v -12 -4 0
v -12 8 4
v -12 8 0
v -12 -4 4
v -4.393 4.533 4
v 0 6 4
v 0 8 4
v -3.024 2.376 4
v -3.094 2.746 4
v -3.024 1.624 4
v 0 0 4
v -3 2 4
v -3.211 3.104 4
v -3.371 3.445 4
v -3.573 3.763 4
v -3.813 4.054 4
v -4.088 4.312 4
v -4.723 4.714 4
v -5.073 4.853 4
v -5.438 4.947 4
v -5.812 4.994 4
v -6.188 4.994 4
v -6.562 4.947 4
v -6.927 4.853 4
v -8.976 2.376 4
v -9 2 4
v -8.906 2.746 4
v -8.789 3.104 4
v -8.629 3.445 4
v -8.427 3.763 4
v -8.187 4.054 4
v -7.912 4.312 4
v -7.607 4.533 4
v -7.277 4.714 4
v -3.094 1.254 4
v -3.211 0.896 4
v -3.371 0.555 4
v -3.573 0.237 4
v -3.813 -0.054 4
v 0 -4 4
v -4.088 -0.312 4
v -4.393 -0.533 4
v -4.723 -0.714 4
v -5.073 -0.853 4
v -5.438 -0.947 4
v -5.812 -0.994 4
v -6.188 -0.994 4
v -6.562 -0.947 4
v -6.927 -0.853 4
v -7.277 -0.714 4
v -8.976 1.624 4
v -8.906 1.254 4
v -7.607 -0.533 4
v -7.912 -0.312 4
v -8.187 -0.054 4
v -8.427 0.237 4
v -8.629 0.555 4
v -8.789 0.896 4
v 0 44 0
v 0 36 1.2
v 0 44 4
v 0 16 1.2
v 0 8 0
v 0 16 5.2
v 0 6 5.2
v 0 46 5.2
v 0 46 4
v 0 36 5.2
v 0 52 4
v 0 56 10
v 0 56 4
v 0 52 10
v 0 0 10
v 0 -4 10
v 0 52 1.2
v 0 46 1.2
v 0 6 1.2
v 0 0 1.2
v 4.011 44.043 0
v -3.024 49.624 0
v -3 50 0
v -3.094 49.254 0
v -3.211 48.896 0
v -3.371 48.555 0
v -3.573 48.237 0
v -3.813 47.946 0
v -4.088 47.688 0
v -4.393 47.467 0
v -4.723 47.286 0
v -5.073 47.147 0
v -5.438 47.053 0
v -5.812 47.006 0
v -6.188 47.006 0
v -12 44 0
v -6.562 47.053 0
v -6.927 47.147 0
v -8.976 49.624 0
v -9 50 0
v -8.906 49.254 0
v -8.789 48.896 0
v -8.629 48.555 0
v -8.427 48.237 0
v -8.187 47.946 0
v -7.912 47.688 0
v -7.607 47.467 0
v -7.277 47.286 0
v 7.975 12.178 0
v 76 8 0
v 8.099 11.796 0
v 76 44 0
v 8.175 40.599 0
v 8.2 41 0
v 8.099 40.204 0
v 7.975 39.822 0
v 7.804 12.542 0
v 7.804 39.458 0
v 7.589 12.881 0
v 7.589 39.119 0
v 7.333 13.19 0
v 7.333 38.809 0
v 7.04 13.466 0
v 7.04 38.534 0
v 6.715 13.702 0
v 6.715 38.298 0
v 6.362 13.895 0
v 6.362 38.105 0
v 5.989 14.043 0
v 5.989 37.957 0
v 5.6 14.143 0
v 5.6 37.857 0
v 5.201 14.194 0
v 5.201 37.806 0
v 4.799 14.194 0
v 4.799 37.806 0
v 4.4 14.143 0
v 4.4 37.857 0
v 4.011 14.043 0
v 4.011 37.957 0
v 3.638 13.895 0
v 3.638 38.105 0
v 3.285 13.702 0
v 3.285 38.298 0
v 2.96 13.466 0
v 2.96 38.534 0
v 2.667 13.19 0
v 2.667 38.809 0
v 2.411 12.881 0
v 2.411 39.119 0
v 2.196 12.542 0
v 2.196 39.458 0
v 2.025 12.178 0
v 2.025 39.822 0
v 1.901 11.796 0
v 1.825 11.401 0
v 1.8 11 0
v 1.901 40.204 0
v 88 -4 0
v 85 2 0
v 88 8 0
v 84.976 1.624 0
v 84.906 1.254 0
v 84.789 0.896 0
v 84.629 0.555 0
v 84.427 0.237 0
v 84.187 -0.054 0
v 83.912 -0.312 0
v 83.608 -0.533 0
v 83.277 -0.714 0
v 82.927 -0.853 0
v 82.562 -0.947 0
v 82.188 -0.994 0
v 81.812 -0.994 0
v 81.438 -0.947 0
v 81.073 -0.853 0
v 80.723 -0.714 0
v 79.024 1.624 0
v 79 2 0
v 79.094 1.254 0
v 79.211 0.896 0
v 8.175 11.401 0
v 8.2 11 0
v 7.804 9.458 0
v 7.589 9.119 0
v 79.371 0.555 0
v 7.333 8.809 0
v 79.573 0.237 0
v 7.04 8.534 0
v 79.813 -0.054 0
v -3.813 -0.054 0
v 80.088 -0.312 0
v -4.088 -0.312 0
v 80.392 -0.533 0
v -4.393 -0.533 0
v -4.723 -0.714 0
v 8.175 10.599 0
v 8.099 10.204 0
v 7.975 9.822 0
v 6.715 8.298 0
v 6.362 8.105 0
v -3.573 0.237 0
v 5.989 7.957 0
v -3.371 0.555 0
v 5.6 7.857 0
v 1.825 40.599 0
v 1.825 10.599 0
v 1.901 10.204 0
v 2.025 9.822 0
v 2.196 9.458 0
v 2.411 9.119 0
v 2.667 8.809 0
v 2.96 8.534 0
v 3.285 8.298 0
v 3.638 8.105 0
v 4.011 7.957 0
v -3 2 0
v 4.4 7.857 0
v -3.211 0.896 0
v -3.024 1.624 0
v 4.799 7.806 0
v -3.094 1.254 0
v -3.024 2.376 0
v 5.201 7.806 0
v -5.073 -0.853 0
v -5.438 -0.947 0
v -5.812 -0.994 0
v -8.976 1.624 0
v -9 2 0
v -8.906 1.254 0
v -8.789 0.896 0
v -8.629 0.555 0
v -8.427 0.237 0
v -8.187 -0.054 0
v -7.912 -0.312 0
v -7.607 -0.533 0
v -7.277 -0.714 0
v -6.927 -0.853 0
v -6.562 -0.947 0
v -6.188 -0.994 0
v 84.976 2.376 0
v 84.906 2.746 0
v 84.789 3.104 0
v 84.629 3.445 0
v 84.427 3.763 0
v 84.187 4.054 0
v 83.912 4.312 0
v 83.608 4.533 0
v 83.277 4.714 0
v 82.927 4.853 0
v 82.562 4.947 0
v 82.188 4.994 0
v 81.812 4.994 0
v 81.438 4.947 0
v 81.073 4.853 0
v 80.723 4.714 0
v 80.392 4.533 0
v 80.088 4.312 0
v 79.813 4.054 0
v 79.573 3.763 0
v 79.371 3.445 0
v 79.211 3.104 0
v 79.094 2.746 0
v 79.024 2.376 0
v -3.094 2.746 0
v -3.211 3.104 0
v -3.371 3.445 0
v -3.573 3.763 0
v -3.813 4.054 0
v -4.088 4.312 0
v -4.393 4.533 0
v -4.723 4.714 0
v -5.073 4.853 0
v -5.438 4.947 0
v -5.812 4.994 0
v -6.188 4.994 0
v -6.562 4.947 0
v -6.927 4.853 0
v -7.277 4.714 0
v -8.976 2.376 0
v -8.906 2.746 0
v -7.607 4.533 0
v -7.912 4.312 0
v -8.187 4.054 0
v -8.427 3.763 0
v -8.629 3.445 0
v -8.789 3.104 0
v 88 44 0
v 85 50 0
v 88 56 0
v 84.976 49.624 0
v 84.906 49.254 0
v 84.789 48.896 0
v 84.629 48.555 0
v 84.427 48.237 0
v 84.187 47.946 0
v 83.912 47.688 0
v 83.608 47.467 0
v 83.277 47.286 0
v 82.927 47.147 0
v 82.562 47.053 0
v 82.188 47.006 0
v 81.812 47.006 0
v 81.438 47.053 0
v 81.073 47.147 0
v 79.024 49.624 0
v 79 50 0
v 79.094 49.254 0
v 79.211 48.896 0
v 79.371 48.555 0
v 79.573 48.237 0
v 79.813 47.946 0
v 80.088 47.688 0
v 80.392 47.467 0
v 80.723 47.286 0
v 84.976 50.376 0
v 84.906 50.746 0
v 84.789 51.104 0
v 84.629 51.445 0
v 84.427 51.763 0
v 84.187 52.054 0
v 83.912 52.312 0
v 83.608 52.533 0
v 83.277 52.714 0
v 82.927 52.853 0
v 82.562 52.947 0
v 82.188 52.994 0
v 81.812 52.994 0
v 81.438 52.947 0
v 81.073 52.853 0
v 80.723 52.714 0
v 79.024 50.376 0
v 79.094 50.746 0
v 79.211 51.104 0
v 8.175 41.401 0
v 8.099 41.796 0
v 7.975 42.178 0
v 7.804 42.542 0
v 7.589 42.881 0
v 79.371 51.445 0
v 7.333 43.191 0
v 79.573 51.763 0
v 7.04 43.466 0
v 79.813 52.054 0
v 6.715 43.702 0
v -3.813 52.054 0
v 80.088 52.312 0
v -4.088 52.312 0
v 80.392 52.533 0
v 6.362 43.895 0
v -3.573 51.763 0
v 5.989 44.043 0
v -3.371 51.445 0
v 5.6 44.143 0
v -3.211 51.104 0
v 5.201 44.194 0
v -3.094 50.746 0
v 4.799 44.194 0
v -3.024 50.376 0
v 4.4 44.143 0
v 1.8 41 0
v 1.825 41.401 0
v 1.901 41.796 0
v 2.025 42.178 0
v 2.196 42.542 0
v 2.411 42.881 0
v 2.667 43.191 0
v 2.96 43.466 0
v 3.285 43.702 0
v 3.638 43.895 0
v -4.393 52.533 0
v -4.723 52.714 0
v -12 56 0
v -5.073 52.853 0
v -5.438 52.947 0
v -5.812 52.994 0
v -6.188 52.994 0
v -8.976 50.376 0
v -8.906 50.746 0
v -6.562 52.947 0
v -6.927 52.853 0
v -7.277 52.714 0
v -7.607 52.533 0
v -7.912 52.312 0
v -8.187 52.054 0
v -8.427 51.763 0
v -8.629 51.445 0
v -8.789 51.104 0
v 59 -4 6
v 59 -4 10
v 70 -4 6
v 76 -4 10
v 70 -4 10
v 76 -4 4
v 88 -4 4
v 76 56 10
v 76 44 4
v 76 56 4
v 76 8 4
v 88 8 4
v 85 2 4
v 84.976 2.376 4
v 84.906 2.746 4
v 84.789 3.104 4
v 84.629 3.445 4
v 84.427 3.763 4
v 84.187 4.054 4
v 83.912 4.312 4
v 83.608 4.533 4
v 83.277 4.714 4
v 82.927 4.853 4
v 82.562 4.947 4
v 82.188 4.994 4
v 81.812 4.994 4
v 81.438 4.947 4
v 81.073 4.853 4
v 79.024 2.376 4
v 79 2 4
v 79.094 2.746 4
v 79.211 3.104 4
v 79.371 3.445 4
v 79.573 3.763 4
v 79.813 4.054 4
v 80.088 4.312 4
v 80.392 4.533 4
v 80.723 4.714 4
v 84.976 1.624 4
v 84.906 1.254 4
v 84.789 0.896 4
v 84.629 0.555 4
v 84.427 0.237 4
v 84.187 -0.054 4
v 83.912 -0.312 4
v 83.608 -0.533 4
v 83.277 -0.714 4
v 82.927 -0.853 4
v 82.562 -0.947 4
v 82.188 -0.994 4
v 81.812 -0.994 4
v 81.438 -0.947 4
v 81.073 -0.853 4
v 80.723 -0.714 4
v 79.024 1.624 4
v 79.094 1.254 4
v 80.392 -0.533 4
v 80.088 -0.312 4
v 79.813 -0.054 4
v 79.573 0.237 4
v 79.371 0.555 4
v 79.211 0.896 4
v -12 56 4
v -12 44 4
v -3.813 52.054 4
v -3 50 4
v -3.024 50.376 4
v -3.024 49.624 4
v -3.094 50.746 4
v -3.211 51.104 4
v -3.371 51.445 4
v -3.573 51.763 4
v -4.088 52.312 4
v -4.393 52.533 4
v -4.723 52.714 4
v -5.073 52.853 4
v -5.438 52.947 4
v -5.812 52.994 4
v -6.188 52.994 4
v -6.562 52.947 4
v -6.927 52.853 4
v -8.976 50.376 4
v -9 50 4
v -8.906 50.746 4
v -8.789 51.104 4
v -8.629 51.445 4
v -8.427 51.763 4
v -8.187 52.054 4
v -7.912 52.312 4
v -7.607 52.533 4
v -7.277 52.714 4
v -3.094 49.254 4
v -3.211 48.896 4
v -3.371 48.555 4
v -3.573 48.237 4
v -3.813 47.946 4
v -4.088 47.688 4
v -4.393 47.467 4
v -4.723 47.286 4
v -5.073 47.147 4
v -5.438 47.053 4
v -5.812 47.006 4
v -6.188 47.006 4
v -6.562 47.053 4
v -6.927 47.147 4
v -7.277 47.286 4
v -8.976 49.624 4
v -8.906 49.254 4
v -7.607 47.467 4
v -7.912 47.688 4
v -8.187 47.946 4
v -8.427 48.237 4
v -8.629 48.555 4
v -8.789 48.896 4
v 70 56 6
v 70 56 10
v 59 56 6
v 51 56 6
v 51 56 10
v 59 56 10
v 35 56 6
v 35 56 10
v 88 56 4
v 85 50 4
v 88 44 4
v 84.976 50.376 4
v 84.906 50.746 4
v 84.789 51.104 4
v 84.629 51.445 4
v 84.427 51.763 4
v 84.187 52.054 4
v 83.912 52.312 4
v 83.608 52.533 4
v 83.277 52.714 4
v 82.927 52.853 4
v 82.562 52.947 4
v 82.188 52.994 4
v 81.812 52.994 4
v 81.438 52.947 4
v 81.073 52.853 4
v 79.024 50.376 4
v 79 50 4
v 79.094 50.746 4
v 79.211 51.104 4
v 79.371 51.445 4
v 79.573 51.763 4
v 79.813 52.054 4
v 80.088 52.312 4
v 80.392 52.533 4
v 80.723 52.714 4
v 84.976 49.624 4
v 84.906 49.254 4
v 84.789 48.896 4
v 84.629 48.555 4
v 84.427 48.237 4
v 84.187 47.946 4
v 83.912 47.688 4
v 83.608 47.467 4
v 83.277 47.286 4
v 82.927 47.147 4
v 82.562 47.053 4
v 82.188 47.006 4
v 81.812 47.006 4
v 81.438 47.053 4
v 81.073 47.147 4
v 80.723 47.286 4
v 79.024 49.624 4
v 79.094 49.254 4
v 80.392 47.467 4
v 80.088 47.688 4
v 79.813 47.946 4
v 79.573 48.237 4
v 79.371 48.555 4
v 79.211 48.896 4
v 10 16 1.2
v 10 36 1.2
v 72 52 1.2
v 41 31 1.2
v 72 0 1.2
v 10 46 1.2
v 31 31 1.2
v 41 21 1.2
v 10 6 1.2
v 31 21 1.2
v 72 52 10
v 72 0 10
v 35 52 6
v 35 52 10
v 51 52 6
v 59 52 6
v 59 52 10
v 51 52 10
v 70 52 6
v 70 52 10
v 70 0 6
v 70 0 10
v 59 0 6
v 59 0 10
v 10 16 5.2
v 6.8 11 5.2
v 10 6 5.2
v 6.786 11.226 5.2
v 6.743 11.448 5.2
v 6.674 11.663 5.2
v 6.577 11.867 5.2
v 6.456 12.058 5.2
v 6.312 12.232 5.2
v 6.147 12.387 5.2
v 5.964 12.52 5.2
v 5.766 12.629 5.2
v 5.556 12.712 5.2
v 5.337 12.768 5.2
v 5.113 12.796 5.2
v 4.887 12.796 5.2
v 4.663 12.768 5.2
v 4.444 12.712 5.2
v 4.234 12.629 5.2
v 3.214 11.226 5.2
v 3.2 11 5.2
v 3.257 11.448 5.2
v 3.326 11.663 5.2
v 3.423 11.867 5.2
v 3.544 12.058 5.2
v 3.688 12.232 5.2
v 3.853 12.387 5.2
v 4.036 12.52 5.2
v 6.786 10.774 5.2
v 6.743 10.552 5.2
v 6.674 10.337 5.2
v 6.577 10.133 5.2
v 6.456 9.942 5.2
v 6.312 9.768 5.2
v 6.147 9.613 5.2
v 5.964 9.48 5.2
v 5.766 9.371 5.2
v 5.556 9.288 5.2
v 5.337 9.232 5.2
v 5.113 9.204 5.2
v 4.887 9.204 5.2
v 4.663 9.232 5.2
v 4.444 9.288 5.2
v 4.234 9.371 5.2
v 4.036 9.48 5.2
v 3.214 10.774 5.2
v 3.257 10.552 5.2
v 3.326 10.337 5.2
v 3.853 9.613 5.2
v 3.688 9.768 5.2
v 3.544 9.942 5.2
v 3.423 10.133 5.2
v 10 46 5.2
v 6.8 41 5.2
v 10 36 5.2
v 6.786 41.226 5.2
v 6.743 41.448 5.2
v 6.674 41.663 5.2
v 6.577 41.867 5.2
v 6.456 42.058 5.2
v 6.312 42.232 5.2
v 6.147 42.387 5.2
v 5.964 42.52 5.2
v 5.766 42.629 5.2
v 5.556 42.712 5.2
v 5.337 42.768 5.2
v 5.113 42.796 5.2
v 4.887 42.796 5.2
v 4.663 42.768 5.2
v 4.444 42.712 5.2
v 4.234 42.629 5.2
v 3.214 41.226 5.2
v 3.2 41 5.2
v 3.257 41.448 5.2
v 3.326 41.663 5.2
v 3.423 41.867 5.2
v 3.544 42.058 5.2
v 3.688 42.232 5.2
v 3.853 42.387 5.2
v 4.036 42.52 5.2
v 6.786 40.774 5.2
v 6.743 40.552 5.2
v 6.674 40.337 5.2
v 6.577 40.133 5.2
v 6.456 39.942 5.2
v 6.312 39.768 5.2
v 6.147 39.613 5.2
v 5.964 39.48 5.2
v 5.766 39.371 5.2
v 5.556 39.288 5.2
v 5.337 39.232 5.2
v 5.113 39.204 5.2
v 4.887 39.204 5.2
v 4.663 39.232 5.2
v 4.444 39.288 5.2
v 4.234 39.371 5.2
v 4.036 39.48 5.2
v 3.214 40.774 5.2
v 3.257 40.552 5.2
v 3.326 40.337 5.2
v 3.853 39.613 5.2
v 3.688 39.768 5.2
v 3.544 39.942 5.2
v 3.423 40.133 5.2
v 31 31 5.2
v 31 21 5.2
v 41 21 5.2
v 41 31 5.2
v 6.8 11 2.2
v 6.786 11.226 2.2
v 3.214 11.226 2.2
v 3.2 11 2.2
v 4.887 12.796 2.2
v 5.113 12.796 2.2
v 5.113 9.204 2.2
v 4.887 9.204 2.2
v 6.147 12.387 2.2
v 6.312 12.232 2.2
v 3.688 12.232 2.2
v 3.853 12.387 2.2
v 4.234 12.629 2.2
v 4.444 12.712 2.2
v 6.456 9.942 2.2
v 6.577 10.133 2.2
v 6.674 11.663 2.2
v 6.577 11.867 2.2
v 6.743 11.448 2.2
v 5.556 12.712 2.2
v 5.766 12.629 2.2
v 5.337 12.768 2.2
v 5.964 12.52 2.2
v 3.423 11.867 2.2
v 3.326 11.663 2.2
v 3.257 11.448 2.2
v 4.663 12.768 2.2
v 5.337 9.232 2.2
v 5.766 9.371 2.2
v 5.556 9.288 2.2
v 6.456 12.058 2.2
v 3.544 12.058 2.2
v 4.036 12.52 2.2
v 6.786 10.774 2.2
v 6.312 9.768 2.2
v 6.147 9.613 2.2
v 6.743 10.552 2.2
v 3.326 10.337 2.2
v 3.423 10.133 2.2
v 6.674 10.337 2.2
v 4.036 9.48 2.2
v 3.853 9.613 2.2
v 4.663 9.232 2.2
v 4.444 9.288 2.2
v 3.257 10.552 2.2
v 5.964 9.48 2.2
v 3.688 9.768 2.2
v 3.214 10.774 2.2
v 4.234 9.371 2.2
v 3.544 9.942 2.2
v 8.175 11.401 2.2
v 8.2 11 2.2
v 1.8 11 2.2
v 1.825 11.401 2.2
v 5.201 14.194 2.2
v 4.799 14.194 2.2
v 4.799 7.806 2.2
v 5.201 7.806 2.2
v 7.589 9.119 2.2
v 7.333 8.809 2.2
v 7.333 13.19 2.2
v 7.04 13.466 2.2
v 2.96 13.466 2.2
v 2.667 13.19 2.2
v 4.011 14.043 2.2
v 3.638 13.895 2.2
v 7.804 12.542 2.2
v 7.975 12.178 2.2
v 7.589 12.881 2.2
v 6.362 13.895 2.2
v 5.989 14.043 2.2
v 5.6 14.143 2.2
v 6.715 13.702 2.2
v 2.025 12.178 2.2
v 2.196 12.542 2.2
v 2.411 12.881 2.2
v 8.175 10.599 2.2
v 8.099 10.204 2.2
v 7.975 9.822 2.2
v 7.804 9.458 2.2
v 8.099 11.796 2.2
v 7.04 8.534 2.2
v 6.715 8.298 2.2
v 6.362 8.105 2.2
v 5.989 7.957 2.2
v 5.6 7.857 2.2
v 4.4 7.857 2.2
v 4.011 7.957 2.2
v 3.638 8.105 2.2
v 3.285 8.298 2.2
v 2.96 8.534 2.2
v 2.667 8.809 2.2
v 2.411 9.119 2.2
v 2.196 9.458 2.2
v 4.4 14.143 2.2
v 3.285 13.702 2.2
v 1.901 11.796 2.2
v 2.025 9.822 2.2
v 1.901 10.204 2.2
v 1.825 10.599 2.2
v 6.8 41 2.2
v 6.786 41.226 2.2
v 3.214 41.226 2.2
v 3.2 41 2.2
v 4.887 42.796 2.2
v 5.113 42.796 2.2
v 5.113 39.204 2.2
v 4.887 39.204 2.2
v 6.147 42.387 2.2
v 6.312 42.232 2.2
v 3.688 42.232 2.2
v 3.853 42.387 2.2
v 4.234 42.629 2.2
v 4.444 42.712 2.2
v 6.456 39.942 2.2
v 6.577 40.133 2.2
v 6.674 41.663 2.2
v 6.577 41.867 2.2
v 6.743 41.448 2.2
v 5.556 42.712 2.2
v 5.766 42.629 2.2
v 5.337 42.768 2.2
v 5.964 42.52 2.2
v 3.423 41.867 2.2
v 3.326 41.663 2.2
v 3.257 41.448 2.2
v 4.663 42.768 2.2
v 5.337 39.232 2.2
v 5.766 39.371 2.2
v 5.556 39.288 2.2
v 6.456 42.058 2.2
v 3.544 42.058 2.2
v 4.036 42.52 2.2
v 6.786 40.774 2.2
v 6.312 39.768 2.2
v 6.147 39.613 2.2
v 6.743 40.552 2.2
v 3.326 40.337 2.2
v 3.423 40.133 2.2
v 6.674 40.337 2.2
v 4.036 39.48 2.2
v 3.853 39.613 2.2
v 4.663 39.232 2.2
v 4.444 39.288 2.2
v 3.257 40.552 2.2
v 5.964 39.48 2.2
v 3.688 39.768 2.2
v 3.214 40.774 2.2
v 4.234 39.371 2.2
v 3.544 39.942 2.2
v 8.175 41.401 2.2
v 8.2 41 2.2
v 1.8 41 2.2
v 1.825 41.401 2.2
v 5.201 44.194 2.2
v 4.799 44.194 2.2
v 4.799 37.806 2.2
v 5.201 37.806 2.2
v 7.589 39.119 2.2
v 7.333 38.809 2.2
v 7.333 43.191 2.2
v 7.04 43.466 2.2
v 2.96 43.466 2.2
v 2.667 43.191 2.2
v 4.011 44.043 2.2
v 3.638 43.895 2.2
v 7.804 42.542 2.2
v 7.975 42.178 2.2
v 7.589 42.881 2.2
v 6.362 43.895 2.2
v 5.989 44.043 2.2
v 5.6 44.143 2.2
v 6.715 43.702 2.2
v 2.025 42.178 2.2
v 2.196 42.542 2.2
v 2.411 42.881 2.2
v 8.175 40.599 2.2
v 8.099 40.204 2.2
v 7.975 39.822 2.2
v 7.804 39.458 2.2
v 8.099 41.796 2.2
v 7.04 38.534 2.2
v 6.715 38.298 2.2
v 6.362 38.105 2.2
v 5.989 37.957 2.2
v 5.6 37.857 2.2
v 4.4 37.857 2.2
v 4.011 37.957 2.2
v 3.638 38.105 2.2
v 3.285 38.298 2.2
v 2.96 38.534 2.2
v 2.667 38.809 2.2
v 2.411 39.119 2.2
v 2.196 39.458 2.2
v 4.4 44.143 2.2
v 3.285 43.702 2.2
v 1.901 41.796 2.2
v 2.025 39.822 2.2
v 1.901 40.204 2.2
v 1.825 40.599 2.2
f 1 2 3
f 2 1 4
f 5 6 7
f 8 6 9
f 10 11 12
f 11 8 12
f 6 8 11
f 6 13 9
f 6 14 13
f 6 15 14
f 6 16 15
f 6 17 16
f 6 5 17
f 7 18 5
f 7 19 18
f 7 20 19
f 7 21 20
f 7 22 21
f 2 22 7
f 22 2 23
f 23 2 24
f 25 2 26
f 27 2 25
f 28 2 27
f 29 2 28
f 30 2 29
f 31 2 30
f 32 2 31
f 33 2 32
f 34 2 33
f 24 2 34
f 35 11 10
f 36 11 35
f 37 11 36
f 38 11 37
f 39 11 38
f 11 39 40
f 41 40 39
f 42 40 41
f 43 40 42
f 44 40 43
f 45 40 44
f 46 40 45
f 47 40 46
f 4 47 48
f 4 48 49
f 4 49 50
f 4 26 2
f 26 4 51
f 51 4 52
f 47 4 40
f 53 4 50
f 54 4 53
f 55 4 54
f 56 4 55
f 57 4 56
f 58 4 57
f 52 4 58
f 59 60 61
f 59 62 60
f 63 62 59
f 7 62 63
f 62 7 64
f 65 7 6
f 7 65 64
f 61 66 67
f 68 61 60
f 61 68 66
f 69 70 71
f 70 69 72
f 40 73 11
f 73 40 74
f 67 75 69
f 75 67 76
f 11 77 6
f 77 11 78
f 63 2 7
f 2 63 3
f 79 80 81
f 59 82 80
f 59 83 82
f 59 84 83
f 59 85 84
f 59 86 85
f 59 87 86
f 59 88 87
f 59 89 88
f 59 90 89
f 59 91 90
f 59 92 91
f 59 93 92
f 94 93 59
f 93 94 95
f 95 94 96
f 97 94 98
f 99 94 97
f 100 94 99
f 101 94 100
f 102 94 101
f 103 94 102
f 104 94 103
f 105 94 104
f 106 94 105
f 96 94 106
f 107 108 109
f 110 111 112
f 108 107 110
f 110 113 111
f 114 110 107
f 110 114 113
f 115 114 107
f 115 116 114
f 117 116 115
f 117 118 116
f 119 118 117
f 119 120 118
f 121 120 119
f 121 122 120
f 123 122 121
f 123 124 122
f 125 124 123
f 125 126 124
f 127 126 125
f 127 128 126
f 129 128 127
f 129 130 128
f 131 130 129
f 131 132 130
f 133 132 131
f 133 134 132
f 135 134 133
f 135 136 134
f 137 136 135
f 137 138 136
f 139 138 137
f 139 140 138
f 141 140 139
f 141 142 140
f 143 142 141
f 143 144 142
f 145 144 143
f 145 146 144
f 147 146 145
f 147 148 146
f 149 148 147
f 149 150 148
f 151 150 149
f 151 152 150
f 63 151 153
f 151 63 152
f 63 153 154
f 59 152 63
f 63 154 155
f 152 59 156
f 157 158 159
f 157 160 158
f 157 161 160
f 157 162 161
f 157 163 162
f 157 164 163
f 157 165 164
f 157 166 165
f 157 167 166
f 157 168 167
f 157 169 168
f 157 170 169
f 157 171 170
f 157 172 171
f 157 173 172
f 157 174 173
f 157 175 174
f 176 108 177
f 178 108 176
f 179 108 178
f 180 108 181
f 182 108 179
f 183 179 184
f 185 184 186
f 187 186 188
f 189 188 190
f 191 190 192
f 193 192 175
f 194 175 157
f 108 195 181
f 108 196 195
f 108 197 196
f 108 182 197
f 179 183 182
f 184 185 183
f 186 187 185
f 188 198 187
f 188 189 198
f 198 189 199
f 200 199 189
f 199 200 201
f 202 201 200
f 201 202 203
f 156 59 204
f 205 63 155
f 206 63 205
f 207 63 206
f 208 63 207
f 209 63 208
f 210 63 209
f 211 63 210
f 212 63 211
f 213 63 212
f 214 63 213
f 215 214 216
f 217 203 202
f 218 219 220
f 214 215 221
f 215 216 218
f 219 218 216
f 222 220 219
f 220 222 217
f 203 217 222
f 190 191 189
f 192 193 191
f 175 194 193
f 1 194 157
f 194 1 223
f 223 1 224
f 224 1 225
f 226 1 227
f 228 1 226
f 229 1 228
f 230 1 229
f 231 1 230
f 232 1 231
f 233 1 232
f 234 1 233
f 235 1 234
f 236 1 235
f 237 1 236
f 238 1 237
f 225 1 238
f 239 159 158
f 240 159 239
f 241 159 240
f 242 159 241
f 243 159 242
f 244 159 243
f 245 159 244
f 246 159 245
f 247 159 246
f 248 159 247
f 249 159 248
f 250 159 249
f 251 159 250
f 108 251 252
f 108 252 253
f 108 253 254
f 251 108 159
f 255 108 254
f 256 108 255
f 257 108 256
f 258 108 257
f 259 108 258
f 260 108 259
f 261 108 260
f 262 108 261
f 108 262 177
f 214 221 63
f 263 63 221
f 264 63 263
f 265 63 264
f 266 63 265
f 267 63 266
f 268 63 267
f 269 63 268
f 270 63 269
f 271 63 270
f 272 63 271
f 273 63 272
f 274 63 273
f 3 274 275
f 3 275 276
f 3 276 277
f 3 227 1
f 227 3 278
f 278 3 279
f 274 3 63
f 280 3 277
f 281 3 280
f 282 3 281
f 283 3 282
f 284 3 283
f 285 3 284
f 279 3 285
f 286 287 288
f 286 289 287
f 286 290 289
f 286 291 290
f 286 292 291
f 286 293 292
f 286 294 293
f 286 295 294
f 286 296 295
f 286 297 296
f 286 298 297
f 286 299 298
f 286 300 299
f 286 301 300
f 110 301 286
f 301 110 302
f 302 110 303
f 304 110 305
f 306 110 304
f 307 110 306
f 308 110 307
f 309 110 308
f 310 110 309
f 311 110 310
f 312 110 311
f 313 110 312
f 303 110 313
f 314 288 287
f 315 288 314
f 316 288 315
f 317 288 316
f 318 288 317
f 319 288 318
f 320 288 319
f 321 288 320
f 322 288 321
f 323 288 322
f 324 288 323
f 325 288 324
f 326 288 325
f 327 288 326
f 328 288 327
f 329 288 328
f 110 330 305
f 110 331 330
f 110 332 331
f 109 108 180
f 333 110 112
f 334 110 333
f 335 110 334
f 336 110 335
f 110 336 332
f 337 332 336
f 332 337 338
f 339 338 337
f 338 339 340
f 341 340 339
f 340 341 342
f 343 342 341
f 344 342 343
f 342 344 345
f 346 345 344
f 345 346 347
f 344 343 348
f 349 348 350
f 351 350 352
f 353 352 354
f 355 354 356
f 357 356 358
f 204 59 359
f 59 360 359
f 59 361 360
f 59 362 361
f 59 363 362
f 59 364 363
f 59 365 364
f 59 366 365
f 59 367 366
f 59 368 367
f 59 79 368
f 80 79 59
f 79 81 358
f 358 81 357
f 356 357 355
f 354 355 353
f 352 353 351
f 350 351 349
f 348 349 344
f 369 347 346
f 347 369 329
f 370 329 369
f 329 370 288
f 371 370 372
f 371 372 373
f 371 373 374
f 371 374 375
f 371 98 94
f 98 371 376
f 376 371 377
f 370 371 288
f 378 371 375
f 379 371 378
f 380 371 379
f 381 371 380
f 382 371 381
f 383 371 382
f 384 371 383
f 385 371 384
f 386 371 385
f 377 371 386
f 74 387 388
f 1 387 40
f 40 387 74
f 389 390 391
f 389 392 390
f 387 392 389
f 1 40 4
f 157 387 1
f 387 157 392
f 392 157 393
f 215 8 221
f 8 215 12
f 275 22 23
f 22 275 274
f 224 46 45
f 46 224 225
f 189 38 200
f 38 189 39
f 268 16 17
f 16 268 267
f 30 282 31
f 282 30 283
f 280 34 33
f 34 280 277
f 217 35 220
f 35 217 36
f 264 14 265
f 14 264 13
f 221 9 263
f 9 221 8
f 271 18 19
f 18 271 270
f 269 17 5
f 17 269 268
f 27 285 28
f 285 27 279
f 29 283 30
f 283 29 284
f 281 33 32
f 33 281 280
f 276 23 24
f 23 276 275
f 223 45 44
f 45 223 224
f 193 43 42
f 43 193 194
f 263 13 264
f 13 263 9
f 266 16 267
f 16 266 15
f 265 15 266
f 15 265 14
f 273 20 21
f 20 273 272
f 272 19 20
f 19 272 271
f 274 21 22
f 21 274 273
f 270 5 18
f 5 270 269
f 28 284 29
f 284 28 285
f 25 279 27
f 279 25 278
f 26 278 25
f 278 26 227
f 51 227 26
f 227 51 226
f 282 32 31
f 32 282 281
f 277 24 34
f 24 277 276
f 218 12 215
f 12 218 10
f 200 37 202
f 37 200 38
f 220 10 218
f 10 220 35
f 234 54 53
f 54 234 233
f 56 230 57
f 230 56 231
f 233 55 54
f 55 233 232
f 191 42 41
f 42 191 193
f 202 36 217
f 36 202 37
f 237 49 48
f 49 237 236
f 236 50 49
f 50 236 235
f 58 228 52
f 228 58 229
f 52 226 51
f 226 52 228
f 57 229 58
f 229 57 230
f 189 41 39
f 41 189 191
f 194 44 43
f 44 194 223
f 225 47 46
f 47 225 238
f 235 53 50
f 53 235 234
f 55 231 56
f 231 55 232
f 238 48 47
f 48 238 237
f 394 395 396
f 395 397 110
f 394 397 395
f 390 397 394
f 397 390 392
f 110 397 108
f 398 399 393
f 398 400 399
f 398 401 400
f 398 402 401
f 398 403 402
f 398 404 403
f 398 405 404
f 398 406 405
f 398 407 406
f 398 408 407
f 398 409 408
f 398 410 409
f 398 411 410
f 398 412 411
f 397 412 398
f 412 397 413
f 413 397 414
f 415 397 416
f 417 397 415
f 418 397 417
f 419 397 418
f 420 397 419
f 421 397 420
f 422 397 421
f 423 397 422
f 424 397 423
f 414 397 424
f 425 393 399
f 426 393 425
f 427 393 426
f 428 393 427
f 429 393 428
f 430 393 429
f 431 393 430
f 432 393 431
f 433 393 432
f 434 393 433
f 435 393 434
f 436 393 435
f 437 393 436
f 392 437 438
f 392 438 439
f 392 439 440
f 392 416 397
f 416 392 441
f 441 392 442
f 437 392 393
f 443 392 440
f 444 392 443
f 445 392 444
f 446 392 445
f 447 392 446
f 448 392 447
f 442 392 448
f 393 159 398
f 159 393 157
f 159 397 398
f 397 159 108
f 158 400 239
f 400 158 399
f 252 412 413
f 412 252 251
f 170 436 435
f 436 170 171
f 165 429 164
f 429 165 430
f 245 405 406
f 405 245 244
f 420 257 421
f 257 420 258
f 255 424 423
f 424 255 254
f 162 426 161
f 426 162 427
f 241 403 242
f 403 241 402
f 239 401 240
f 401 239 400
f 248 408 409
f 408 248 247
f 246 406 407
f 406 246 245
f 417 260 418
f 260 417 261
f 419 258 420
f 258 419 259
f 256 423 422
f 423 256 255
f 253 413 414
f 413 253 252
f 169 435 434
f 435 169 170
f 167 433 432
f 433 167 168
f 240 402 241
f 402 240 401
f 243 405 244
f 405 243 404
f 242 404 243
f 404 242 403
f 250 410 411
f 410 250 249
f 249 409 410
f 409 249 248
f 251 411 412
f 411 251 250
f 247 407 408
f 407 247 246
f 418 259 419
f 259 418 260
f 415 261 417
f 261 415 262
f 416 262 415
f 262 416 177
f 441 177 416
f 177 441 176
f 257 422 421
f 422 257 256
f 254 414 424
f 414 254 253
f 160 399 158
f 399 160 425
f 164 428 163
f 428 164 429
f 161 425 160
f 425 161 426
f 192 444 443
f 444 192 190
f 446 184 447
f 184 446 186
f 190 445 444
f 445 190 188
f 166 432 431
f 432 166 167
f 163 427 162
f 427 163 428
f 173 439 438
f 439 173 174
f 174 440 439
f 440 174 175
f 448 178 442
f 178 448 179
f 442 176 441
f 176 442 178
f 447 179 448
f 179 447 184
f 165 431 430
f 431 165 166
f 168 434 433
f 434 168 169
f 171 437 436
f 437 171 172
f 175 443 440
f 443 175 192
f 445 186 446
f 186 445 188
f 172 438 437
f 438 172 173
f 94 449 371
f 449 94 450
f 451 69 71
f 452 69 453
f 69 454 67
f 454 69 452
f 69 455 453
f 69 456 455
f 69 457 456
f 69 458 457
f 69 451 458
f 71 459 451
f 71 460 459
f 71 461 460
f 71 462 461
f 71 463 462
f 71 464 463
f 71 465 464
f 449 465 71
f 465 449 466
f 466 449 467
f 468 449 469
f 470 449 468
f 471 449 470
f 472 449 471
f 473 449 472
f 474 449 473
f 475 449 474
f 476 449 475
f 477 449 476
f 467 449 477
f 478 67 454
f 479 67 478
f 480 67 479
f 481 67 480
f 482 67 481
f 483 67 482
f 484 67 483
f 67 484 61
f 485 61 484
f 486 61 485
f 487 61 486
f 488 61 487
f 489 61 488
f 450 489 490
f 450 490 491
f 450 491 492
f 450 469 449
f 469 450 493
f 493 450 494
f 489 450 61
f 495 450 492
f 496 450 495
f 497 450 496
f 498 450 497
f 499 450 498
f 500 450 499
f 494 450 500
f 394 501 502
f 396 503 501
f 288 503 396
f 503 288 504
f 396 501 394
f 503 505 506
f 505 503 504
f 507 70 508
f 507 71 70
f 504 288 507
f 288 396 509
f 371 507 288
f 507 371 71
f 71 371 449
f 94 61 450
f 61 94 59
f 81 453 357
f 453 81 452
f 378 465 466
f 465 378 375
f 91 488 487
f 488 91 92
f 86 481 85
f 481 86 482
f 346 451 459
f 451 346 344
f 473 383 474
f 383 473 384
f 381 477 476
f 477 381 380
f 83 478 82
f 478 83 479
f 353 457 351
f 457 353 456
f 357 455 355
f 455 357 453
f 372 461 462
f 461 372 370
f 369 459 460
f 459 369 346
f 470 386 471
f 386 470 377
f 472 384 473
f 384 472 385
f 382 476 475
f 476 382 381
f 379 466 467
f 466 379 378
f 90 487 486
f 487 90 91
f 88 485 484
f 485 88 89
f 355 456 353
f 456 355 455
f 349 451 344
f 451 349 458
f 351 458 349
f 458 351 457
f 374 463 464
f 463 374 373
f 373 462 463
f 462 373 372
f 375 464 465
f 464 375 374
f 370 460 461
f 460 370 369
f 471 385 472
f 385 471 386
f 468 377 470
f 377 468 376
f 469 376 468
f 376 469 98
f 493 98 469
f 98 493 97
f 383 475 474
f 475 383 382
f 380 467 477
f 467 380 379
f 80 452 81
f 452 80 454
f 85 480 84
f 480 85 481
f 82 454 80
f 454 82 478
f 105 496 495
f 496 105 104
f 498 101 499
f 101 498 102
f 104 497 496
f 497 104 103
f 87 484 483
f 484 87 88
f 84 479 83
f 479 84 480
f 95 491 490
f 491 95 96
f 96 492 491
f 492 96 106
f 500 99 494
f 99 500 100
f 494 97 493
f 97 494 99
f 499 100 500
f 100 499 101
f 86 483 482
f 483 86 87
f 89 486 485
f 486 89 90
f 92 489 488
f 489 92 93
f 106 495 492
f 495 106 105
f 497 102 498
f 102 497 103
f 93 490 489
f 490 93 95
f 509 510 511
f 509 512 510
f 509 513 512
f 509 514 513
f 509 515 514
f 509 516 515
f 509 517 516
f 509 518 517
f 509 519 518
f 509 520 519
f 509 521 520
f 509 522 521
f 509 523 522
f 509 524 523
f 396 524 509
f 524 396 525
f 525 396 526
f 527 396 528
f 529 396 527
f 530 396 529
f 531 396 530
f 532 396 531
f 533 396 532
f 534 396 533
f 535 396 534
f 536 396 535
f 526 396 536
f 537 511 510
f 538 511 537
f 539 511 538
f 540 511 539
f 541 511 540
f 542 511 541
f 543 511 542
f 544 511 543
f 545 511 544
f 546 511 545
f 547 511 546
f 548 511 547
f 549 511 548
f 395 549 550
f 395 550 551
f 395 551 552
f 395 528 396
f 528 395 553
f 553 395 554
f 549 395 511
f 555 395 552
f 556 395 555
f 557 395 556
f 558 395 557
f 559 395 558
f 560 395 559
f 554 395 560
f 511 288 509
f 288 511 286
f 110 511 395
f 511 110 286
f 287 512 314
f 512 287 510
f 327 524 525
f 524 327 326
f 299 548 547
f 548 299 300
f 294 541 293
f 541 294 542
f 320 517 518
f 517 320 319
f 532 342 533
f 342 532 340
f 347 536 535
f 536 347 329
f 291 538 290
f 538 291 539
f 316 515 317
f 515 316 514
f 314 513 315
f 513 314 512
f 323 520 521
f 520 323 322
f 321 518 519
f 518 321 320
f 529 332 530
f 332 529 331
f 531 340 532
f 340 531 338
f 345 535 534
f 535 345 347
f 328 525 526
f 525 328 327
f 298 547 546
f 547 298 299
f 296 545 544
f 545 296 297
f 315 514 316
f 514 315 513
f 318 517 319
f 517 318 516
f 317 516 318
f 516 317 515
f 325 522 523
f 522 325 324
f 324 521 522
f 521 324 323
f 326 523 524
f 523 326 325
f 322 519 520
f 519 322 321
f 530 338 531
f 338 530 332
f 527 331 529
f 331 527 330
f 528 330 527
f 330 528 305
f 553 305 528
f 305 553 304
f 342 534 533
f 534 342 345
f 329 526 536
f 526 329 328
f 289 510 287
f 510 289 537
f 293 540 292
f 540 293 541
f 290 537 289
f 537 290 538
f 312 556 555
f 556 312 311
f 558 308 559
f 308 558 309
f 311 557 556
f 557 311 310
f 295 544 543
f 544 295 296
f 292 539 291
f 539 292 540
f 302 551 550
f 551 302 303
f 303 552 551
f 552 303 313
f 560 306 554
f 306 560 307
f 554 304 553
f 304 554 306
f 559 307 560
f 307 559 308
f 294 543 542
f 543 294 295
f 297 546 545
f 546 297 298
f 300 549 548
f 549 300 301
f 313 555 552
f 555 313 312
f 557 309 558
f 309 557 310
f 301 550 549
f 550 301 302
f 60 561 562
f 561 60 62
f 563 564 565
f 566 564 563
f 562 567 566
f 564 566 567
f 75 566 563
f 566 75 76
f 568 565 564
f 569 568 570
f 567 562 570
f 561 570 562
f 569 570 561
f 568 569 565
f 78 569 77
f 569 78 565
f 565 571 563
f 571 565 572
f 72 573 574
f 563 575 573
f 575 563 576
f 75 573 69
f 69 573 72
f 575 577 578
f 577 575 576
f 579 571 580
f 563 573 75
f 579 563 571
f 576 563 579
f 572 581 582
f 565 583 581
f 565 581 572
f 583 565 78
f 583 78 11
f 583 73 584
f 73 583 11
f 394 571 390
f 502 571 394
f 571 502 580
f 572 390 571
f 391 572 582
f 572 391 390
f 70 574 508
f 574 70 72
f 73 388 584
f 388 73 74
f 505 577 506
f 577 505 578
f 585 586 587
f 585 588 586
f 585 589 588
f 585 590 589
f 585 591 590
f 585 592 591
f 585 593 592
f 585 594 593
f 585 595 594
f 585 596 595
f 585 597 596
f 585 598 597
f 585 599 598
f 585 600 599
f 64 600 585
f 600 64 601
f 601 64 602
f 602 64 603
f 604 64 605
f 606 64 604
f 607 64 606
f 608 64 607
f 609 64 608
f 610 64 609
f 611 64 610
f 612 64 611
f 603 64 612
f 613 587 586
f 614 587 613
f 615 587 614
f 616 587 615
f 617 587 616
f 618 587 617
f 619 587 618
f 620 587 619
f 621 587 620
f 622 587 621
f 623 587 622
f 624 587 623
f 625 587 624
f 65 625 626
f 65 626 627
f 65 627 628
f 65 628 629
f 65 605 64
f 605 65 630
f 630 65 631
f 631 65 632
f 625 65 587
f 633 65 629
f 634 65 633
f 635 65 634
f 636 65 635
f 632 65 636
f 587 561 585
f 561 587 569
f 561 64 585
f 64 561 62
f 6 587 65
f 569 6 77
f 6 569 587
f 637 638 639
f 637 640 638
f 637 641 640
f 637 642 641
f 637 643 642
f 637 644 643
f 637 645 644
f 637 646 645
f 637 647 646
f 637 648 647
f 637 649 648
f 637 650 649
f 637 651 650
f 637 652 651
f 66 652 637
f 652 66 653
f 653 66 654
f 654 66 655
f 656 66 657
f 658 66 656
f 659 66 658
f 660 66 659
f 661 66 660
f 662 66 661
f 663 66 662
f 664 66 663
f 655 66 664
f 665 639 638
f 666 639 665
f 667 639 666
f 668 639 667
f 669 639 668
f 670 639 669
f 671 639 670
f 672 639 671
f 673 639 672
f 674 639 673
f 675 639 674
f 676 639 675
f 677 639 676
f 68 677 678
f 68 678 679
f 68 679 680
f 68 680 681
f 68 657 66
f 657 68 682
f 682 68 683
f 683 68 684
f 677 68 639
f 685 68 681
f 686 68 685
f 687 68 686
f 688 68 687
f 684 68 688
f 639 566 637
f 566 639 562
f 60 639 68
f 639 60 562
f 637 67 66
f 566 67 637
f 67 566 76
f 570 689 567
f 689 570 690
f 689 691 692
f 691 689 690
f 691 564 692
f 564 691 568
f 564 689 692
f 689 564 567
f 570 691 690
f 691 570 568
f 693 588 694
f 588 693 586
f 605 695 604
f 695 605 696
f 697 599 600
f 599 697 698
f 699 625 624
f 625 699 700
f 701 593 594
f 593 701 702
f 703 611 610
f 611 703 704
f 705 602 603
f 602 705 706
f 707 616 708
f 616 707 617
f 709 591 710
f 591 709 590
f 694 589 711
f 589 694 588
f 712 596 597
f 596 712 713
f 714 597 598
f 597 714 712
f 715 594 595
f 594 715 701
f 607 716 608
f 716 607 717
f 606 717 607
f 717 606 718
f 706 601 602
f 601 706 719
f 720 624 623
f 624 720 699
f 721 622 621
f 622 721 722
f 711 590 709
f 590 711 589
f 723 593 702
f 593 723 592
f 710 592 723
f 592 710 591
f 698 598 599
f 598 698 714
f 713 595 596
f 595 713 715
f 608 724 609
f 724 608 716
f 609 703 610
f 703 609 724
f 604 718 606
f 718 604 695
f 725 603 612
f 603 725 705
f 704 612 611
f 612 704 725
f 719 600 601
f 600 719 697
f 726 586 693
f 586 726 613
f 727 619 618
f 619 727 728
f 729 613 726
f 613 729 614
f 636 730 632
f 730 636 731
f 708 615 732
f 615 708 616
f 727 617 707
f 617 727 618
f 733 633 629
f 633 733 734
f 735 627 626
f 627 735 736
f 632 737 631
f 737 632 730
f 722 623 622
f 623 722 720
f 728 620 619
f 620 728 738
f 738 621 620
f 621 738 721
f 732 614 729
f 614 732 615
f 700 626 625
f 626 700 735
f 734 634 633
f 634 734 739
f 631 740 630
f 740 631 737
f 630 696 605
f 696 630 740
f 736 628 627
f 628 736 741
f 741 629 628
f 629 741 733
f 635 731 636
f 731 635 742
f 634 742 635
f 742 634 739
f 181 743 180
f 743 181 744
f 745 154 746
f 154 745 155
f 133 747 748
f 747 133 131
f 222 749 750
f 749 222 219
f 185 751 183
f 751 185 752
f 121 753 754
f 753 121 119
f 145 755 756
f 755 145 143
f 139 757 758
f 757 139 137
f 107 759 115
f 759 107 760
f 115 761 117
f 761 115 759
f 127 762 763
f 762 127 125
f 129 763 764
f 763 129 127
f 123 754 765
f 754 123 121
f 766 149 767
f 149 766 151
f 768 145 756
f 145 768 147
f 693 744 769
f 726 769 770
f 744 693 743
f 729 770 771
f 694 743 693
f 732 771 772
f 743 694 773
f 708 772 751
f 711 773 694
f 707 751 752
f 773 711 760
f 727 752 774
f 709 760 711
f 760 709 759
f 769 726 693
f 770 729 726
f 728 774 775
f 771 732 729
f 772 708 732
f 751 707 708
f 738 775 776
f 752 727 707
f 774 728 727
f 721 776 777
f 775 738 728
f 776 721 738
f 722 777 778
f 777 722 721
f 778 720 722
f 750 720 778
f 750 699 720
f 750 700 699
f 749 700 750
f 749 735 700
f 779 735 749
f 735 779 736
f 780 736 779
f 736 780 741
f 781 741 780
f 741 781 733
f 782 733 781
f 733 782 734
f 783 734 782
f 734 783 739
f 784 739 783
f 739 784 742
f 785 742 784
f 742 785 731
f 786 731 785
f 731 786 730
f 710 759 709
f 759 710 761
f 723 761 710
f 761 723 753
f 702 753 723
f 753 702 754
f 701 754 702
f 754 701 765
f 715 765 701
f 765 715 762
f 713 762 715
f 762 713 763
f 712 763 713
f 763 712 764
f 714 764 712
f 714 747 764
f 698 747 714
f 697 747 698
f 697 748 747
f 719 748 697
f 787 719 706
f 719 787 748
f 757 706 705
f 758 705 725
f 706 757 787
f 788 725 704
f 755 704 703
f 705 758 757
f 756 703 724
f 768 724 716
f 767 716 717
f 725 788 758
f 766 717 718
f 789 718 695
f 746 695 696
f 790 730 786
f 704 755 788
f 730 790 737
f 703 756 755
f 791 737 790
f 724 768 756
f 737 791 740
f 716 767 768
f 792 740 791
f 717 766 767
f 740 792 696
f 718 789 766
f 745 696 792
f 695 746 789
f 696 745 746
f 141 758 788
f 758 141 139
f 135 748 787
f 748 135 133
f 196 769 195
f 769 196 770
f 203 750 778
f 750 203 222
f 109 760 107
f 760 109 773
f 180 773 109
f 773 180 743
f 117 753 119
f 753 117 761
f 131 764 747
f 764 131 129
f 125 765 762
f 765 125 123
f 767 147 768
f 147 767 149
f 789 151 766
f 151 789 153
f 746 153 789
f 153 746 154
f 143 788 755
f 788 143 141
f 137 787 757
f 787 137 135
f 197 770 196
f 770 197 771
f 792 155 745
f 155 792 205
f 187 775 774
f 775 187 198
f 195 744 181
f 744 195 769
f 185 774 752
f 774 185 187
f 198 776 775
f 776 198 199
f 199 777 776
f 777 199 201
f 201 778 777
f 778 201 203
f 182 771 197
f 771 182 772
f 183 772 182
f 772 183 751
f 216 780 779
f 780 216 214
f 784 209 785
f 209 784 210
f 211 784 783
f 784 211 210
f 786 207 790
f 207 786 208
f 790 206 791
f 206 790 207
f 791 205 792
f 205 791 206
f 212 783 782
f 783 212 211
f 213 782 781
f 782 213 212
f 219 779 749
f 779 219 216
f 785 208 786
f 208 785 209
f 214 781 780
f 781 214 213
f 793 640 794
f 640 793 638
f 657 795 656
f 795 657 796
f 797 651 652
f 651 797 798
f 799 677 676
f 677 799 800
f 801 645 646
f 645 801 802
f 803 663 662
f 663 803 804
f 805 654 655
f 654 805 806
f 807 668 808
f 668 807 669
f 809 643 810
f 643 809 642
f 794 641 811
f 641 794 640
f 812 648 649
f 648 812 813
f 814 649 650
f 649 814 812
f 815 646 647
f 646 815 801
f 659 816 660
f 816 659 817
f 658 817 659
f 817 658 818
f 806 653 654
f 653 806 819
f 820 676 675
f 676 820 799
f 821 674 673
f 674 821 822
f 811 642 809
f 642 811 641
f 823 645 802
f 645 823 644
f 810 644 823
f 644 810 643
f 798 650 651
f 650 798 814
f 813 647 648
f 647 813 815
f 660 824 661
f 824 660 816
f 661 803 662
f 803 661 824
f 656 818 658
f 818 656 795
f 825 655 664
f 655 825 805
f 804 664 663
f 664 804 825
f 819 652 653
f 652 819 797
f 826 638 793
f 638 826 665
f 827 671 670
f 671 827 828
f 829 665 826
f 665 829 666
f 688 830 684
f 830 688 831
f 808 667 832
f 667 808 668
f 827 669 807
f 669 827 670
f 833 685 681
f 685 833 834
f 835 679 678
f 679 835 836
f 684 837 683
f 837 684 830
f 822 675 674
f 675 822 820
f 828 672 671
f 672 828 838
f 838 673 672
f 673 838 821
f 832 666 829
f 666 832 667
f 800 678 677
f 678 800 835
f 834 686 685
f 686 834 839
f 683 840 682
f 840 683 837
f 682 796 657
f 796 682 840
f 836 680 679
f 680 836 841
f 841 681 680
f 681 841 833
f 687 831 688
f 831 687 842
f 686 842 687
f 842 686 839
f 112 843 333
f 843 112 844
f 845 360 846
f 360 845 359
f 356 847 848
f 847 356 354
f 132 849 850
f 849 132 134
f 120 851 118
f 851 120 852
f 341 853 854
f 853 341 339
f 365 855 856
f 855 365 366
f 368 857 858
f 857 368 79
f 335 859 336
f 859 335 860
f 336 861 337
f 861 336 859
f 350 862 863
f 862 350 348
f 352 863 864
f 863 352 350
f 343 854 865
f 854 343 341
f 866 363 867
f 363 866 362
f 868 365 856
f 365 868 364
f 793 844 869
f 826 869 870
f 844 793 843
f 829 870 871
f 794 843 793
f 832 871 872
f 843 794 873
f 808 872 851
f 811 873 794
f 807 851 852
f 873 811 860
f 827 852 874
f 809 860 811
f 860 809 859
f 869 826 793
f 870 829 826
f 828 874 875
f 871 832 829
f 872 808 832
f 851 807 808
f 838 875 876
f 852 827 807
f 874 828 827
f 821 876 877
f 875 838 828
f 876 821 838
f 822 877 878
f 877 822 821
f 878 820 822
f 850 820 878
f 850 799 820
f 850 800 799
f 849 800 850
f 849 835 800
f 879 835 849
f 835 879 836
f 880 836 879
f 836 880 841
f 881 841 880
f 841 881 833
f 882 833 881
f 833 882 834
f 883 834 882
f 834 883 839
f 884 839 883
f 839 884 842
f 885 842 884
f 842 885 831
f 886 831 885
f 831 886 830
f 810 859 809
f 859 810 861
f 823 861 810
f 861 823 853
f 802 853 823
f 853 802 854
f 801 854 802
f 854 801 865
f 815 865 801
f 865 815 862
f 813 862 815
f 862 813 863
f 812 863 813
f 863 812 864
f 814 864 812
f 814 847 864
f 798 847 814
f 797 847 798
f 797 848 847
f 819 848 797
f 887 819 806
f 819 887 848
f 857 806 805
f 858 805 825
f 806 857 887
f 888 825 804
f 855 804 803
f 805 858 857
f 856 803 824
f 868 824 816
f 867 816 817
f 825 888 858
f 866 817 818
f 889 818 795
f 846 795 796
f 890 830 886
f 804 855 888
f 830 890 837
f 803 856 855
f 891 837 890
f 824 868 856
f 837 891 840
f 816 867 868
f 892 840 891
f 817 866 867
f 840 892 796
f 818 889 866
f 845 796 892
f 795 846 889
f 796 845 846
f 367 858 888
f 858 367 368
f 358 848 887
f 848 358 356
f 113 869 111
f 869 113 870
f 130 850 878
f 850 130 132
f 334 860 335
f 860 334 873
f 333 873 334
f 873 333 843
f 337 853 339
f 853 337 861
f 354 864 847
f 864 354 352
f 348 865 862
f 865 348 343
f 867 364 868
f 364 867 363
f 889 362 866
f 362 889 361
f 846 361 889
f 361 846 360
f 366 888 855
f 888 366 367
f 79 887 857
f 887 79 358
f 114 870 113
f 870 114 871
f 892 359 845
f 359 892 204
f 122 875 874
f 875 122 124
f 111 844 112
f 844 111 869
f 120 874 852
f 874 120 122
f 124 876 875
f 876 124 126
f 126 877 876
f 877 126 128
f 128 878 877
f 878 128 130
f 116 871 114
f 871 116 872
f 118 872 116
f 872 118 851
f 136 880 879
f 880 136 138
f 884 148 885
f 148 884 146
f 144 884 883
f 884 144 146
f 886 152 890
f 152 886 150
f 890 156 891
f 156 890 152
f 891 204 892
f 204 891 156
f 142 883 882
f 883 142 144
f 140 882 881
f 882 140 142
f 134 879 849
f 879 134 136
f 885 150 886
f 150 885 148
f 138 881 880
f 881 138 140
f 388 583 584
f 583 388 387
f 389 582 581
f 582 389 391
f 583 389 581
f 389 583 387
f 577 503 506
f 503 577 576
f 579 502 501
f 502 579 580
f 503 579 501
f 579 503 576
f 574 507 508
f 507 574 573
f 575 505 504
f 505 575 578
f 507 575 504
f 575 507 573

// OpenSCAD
$fn=50;

wallH=10;
wallT=4;
pcbMargin=1;

boxX=70+2*pcbMargin;
boxY=50+2*pcbMargin;
boxT=1.2;

standoffX=10;
standoffY=10;
standoffZ=4;
standoffOffsetX=standoffX/2;
standoffOffsetY=standoffY/2+pcbMargin;
standoffDistance=30;
module standoff()
{
    cylinder(r=1.8,h=10);
    cylinder(r=3.2,h=2.2);
}

mountX=12;
mountY=12;
mountZ=4;
mountScrewR=3;
module mount()
{
    difference()
    {
        cube([mountX,mountY,mountZ]);
        translate([mountX/2,mountY/2,0])  cylinder(r=mountScrewR,h=mountZ);
    }
}

difference()
{
    union()
    {
        // Floor
        cube([boxX,boxY,boxT]);
        // Walls
        translate([0,-wallT,0])  cube([boxX+wallT,wallT,wallH]);
        translate([0,boxY,0])  cube([boxX+wallT,wallT,wallH]);
        translate([boxX,0,0])  cube([wallT,boxY,wallH]);
        // PCB supports
        translate([0,standoffOffsetY,boxT])  cube([standoffX,standoffY,standoffZ]);
        translate([0,standoffOffsetY+standoffDistance,boxT])  cube([standoffX,standoffY,standoffZ]);
        translate([boxX/2-standoffX/2,boxY/2-standoffY/2,boxT])  cube([standoffX,standoffY,standoffZ]);
        // External mounts
        translate([-mountX,-wallT,0])  mount();
        translate([boxX+wallT,-wallT,0])  mount();
        translate([-mountX,boxY-mountY+wallT,0])  mount();
        translate([boxX+wallT,boxY-mountY+wallT,0])  mount();
    }
    // Screw standoffs
    translate([standoffOffsetX,standoffY/2+standoffOffsetY,0])  standoff();
    translate([standoffOffsetX,standoffY/2+standoffOffsetY+standoffDistance,0])  standoff();
    // Holes in the wall for access
    translate([boxX-pcbMargin-12,-wallT,6])  cube([11,wallT,wallH]);
    translate([boxX-pcbMargin-12,boxY,6])  cube([11,wallT,wallH]);
    translate([boxX-pcbMargin-36,boxY,6])  cube([16,wallT,wallH]);
}
